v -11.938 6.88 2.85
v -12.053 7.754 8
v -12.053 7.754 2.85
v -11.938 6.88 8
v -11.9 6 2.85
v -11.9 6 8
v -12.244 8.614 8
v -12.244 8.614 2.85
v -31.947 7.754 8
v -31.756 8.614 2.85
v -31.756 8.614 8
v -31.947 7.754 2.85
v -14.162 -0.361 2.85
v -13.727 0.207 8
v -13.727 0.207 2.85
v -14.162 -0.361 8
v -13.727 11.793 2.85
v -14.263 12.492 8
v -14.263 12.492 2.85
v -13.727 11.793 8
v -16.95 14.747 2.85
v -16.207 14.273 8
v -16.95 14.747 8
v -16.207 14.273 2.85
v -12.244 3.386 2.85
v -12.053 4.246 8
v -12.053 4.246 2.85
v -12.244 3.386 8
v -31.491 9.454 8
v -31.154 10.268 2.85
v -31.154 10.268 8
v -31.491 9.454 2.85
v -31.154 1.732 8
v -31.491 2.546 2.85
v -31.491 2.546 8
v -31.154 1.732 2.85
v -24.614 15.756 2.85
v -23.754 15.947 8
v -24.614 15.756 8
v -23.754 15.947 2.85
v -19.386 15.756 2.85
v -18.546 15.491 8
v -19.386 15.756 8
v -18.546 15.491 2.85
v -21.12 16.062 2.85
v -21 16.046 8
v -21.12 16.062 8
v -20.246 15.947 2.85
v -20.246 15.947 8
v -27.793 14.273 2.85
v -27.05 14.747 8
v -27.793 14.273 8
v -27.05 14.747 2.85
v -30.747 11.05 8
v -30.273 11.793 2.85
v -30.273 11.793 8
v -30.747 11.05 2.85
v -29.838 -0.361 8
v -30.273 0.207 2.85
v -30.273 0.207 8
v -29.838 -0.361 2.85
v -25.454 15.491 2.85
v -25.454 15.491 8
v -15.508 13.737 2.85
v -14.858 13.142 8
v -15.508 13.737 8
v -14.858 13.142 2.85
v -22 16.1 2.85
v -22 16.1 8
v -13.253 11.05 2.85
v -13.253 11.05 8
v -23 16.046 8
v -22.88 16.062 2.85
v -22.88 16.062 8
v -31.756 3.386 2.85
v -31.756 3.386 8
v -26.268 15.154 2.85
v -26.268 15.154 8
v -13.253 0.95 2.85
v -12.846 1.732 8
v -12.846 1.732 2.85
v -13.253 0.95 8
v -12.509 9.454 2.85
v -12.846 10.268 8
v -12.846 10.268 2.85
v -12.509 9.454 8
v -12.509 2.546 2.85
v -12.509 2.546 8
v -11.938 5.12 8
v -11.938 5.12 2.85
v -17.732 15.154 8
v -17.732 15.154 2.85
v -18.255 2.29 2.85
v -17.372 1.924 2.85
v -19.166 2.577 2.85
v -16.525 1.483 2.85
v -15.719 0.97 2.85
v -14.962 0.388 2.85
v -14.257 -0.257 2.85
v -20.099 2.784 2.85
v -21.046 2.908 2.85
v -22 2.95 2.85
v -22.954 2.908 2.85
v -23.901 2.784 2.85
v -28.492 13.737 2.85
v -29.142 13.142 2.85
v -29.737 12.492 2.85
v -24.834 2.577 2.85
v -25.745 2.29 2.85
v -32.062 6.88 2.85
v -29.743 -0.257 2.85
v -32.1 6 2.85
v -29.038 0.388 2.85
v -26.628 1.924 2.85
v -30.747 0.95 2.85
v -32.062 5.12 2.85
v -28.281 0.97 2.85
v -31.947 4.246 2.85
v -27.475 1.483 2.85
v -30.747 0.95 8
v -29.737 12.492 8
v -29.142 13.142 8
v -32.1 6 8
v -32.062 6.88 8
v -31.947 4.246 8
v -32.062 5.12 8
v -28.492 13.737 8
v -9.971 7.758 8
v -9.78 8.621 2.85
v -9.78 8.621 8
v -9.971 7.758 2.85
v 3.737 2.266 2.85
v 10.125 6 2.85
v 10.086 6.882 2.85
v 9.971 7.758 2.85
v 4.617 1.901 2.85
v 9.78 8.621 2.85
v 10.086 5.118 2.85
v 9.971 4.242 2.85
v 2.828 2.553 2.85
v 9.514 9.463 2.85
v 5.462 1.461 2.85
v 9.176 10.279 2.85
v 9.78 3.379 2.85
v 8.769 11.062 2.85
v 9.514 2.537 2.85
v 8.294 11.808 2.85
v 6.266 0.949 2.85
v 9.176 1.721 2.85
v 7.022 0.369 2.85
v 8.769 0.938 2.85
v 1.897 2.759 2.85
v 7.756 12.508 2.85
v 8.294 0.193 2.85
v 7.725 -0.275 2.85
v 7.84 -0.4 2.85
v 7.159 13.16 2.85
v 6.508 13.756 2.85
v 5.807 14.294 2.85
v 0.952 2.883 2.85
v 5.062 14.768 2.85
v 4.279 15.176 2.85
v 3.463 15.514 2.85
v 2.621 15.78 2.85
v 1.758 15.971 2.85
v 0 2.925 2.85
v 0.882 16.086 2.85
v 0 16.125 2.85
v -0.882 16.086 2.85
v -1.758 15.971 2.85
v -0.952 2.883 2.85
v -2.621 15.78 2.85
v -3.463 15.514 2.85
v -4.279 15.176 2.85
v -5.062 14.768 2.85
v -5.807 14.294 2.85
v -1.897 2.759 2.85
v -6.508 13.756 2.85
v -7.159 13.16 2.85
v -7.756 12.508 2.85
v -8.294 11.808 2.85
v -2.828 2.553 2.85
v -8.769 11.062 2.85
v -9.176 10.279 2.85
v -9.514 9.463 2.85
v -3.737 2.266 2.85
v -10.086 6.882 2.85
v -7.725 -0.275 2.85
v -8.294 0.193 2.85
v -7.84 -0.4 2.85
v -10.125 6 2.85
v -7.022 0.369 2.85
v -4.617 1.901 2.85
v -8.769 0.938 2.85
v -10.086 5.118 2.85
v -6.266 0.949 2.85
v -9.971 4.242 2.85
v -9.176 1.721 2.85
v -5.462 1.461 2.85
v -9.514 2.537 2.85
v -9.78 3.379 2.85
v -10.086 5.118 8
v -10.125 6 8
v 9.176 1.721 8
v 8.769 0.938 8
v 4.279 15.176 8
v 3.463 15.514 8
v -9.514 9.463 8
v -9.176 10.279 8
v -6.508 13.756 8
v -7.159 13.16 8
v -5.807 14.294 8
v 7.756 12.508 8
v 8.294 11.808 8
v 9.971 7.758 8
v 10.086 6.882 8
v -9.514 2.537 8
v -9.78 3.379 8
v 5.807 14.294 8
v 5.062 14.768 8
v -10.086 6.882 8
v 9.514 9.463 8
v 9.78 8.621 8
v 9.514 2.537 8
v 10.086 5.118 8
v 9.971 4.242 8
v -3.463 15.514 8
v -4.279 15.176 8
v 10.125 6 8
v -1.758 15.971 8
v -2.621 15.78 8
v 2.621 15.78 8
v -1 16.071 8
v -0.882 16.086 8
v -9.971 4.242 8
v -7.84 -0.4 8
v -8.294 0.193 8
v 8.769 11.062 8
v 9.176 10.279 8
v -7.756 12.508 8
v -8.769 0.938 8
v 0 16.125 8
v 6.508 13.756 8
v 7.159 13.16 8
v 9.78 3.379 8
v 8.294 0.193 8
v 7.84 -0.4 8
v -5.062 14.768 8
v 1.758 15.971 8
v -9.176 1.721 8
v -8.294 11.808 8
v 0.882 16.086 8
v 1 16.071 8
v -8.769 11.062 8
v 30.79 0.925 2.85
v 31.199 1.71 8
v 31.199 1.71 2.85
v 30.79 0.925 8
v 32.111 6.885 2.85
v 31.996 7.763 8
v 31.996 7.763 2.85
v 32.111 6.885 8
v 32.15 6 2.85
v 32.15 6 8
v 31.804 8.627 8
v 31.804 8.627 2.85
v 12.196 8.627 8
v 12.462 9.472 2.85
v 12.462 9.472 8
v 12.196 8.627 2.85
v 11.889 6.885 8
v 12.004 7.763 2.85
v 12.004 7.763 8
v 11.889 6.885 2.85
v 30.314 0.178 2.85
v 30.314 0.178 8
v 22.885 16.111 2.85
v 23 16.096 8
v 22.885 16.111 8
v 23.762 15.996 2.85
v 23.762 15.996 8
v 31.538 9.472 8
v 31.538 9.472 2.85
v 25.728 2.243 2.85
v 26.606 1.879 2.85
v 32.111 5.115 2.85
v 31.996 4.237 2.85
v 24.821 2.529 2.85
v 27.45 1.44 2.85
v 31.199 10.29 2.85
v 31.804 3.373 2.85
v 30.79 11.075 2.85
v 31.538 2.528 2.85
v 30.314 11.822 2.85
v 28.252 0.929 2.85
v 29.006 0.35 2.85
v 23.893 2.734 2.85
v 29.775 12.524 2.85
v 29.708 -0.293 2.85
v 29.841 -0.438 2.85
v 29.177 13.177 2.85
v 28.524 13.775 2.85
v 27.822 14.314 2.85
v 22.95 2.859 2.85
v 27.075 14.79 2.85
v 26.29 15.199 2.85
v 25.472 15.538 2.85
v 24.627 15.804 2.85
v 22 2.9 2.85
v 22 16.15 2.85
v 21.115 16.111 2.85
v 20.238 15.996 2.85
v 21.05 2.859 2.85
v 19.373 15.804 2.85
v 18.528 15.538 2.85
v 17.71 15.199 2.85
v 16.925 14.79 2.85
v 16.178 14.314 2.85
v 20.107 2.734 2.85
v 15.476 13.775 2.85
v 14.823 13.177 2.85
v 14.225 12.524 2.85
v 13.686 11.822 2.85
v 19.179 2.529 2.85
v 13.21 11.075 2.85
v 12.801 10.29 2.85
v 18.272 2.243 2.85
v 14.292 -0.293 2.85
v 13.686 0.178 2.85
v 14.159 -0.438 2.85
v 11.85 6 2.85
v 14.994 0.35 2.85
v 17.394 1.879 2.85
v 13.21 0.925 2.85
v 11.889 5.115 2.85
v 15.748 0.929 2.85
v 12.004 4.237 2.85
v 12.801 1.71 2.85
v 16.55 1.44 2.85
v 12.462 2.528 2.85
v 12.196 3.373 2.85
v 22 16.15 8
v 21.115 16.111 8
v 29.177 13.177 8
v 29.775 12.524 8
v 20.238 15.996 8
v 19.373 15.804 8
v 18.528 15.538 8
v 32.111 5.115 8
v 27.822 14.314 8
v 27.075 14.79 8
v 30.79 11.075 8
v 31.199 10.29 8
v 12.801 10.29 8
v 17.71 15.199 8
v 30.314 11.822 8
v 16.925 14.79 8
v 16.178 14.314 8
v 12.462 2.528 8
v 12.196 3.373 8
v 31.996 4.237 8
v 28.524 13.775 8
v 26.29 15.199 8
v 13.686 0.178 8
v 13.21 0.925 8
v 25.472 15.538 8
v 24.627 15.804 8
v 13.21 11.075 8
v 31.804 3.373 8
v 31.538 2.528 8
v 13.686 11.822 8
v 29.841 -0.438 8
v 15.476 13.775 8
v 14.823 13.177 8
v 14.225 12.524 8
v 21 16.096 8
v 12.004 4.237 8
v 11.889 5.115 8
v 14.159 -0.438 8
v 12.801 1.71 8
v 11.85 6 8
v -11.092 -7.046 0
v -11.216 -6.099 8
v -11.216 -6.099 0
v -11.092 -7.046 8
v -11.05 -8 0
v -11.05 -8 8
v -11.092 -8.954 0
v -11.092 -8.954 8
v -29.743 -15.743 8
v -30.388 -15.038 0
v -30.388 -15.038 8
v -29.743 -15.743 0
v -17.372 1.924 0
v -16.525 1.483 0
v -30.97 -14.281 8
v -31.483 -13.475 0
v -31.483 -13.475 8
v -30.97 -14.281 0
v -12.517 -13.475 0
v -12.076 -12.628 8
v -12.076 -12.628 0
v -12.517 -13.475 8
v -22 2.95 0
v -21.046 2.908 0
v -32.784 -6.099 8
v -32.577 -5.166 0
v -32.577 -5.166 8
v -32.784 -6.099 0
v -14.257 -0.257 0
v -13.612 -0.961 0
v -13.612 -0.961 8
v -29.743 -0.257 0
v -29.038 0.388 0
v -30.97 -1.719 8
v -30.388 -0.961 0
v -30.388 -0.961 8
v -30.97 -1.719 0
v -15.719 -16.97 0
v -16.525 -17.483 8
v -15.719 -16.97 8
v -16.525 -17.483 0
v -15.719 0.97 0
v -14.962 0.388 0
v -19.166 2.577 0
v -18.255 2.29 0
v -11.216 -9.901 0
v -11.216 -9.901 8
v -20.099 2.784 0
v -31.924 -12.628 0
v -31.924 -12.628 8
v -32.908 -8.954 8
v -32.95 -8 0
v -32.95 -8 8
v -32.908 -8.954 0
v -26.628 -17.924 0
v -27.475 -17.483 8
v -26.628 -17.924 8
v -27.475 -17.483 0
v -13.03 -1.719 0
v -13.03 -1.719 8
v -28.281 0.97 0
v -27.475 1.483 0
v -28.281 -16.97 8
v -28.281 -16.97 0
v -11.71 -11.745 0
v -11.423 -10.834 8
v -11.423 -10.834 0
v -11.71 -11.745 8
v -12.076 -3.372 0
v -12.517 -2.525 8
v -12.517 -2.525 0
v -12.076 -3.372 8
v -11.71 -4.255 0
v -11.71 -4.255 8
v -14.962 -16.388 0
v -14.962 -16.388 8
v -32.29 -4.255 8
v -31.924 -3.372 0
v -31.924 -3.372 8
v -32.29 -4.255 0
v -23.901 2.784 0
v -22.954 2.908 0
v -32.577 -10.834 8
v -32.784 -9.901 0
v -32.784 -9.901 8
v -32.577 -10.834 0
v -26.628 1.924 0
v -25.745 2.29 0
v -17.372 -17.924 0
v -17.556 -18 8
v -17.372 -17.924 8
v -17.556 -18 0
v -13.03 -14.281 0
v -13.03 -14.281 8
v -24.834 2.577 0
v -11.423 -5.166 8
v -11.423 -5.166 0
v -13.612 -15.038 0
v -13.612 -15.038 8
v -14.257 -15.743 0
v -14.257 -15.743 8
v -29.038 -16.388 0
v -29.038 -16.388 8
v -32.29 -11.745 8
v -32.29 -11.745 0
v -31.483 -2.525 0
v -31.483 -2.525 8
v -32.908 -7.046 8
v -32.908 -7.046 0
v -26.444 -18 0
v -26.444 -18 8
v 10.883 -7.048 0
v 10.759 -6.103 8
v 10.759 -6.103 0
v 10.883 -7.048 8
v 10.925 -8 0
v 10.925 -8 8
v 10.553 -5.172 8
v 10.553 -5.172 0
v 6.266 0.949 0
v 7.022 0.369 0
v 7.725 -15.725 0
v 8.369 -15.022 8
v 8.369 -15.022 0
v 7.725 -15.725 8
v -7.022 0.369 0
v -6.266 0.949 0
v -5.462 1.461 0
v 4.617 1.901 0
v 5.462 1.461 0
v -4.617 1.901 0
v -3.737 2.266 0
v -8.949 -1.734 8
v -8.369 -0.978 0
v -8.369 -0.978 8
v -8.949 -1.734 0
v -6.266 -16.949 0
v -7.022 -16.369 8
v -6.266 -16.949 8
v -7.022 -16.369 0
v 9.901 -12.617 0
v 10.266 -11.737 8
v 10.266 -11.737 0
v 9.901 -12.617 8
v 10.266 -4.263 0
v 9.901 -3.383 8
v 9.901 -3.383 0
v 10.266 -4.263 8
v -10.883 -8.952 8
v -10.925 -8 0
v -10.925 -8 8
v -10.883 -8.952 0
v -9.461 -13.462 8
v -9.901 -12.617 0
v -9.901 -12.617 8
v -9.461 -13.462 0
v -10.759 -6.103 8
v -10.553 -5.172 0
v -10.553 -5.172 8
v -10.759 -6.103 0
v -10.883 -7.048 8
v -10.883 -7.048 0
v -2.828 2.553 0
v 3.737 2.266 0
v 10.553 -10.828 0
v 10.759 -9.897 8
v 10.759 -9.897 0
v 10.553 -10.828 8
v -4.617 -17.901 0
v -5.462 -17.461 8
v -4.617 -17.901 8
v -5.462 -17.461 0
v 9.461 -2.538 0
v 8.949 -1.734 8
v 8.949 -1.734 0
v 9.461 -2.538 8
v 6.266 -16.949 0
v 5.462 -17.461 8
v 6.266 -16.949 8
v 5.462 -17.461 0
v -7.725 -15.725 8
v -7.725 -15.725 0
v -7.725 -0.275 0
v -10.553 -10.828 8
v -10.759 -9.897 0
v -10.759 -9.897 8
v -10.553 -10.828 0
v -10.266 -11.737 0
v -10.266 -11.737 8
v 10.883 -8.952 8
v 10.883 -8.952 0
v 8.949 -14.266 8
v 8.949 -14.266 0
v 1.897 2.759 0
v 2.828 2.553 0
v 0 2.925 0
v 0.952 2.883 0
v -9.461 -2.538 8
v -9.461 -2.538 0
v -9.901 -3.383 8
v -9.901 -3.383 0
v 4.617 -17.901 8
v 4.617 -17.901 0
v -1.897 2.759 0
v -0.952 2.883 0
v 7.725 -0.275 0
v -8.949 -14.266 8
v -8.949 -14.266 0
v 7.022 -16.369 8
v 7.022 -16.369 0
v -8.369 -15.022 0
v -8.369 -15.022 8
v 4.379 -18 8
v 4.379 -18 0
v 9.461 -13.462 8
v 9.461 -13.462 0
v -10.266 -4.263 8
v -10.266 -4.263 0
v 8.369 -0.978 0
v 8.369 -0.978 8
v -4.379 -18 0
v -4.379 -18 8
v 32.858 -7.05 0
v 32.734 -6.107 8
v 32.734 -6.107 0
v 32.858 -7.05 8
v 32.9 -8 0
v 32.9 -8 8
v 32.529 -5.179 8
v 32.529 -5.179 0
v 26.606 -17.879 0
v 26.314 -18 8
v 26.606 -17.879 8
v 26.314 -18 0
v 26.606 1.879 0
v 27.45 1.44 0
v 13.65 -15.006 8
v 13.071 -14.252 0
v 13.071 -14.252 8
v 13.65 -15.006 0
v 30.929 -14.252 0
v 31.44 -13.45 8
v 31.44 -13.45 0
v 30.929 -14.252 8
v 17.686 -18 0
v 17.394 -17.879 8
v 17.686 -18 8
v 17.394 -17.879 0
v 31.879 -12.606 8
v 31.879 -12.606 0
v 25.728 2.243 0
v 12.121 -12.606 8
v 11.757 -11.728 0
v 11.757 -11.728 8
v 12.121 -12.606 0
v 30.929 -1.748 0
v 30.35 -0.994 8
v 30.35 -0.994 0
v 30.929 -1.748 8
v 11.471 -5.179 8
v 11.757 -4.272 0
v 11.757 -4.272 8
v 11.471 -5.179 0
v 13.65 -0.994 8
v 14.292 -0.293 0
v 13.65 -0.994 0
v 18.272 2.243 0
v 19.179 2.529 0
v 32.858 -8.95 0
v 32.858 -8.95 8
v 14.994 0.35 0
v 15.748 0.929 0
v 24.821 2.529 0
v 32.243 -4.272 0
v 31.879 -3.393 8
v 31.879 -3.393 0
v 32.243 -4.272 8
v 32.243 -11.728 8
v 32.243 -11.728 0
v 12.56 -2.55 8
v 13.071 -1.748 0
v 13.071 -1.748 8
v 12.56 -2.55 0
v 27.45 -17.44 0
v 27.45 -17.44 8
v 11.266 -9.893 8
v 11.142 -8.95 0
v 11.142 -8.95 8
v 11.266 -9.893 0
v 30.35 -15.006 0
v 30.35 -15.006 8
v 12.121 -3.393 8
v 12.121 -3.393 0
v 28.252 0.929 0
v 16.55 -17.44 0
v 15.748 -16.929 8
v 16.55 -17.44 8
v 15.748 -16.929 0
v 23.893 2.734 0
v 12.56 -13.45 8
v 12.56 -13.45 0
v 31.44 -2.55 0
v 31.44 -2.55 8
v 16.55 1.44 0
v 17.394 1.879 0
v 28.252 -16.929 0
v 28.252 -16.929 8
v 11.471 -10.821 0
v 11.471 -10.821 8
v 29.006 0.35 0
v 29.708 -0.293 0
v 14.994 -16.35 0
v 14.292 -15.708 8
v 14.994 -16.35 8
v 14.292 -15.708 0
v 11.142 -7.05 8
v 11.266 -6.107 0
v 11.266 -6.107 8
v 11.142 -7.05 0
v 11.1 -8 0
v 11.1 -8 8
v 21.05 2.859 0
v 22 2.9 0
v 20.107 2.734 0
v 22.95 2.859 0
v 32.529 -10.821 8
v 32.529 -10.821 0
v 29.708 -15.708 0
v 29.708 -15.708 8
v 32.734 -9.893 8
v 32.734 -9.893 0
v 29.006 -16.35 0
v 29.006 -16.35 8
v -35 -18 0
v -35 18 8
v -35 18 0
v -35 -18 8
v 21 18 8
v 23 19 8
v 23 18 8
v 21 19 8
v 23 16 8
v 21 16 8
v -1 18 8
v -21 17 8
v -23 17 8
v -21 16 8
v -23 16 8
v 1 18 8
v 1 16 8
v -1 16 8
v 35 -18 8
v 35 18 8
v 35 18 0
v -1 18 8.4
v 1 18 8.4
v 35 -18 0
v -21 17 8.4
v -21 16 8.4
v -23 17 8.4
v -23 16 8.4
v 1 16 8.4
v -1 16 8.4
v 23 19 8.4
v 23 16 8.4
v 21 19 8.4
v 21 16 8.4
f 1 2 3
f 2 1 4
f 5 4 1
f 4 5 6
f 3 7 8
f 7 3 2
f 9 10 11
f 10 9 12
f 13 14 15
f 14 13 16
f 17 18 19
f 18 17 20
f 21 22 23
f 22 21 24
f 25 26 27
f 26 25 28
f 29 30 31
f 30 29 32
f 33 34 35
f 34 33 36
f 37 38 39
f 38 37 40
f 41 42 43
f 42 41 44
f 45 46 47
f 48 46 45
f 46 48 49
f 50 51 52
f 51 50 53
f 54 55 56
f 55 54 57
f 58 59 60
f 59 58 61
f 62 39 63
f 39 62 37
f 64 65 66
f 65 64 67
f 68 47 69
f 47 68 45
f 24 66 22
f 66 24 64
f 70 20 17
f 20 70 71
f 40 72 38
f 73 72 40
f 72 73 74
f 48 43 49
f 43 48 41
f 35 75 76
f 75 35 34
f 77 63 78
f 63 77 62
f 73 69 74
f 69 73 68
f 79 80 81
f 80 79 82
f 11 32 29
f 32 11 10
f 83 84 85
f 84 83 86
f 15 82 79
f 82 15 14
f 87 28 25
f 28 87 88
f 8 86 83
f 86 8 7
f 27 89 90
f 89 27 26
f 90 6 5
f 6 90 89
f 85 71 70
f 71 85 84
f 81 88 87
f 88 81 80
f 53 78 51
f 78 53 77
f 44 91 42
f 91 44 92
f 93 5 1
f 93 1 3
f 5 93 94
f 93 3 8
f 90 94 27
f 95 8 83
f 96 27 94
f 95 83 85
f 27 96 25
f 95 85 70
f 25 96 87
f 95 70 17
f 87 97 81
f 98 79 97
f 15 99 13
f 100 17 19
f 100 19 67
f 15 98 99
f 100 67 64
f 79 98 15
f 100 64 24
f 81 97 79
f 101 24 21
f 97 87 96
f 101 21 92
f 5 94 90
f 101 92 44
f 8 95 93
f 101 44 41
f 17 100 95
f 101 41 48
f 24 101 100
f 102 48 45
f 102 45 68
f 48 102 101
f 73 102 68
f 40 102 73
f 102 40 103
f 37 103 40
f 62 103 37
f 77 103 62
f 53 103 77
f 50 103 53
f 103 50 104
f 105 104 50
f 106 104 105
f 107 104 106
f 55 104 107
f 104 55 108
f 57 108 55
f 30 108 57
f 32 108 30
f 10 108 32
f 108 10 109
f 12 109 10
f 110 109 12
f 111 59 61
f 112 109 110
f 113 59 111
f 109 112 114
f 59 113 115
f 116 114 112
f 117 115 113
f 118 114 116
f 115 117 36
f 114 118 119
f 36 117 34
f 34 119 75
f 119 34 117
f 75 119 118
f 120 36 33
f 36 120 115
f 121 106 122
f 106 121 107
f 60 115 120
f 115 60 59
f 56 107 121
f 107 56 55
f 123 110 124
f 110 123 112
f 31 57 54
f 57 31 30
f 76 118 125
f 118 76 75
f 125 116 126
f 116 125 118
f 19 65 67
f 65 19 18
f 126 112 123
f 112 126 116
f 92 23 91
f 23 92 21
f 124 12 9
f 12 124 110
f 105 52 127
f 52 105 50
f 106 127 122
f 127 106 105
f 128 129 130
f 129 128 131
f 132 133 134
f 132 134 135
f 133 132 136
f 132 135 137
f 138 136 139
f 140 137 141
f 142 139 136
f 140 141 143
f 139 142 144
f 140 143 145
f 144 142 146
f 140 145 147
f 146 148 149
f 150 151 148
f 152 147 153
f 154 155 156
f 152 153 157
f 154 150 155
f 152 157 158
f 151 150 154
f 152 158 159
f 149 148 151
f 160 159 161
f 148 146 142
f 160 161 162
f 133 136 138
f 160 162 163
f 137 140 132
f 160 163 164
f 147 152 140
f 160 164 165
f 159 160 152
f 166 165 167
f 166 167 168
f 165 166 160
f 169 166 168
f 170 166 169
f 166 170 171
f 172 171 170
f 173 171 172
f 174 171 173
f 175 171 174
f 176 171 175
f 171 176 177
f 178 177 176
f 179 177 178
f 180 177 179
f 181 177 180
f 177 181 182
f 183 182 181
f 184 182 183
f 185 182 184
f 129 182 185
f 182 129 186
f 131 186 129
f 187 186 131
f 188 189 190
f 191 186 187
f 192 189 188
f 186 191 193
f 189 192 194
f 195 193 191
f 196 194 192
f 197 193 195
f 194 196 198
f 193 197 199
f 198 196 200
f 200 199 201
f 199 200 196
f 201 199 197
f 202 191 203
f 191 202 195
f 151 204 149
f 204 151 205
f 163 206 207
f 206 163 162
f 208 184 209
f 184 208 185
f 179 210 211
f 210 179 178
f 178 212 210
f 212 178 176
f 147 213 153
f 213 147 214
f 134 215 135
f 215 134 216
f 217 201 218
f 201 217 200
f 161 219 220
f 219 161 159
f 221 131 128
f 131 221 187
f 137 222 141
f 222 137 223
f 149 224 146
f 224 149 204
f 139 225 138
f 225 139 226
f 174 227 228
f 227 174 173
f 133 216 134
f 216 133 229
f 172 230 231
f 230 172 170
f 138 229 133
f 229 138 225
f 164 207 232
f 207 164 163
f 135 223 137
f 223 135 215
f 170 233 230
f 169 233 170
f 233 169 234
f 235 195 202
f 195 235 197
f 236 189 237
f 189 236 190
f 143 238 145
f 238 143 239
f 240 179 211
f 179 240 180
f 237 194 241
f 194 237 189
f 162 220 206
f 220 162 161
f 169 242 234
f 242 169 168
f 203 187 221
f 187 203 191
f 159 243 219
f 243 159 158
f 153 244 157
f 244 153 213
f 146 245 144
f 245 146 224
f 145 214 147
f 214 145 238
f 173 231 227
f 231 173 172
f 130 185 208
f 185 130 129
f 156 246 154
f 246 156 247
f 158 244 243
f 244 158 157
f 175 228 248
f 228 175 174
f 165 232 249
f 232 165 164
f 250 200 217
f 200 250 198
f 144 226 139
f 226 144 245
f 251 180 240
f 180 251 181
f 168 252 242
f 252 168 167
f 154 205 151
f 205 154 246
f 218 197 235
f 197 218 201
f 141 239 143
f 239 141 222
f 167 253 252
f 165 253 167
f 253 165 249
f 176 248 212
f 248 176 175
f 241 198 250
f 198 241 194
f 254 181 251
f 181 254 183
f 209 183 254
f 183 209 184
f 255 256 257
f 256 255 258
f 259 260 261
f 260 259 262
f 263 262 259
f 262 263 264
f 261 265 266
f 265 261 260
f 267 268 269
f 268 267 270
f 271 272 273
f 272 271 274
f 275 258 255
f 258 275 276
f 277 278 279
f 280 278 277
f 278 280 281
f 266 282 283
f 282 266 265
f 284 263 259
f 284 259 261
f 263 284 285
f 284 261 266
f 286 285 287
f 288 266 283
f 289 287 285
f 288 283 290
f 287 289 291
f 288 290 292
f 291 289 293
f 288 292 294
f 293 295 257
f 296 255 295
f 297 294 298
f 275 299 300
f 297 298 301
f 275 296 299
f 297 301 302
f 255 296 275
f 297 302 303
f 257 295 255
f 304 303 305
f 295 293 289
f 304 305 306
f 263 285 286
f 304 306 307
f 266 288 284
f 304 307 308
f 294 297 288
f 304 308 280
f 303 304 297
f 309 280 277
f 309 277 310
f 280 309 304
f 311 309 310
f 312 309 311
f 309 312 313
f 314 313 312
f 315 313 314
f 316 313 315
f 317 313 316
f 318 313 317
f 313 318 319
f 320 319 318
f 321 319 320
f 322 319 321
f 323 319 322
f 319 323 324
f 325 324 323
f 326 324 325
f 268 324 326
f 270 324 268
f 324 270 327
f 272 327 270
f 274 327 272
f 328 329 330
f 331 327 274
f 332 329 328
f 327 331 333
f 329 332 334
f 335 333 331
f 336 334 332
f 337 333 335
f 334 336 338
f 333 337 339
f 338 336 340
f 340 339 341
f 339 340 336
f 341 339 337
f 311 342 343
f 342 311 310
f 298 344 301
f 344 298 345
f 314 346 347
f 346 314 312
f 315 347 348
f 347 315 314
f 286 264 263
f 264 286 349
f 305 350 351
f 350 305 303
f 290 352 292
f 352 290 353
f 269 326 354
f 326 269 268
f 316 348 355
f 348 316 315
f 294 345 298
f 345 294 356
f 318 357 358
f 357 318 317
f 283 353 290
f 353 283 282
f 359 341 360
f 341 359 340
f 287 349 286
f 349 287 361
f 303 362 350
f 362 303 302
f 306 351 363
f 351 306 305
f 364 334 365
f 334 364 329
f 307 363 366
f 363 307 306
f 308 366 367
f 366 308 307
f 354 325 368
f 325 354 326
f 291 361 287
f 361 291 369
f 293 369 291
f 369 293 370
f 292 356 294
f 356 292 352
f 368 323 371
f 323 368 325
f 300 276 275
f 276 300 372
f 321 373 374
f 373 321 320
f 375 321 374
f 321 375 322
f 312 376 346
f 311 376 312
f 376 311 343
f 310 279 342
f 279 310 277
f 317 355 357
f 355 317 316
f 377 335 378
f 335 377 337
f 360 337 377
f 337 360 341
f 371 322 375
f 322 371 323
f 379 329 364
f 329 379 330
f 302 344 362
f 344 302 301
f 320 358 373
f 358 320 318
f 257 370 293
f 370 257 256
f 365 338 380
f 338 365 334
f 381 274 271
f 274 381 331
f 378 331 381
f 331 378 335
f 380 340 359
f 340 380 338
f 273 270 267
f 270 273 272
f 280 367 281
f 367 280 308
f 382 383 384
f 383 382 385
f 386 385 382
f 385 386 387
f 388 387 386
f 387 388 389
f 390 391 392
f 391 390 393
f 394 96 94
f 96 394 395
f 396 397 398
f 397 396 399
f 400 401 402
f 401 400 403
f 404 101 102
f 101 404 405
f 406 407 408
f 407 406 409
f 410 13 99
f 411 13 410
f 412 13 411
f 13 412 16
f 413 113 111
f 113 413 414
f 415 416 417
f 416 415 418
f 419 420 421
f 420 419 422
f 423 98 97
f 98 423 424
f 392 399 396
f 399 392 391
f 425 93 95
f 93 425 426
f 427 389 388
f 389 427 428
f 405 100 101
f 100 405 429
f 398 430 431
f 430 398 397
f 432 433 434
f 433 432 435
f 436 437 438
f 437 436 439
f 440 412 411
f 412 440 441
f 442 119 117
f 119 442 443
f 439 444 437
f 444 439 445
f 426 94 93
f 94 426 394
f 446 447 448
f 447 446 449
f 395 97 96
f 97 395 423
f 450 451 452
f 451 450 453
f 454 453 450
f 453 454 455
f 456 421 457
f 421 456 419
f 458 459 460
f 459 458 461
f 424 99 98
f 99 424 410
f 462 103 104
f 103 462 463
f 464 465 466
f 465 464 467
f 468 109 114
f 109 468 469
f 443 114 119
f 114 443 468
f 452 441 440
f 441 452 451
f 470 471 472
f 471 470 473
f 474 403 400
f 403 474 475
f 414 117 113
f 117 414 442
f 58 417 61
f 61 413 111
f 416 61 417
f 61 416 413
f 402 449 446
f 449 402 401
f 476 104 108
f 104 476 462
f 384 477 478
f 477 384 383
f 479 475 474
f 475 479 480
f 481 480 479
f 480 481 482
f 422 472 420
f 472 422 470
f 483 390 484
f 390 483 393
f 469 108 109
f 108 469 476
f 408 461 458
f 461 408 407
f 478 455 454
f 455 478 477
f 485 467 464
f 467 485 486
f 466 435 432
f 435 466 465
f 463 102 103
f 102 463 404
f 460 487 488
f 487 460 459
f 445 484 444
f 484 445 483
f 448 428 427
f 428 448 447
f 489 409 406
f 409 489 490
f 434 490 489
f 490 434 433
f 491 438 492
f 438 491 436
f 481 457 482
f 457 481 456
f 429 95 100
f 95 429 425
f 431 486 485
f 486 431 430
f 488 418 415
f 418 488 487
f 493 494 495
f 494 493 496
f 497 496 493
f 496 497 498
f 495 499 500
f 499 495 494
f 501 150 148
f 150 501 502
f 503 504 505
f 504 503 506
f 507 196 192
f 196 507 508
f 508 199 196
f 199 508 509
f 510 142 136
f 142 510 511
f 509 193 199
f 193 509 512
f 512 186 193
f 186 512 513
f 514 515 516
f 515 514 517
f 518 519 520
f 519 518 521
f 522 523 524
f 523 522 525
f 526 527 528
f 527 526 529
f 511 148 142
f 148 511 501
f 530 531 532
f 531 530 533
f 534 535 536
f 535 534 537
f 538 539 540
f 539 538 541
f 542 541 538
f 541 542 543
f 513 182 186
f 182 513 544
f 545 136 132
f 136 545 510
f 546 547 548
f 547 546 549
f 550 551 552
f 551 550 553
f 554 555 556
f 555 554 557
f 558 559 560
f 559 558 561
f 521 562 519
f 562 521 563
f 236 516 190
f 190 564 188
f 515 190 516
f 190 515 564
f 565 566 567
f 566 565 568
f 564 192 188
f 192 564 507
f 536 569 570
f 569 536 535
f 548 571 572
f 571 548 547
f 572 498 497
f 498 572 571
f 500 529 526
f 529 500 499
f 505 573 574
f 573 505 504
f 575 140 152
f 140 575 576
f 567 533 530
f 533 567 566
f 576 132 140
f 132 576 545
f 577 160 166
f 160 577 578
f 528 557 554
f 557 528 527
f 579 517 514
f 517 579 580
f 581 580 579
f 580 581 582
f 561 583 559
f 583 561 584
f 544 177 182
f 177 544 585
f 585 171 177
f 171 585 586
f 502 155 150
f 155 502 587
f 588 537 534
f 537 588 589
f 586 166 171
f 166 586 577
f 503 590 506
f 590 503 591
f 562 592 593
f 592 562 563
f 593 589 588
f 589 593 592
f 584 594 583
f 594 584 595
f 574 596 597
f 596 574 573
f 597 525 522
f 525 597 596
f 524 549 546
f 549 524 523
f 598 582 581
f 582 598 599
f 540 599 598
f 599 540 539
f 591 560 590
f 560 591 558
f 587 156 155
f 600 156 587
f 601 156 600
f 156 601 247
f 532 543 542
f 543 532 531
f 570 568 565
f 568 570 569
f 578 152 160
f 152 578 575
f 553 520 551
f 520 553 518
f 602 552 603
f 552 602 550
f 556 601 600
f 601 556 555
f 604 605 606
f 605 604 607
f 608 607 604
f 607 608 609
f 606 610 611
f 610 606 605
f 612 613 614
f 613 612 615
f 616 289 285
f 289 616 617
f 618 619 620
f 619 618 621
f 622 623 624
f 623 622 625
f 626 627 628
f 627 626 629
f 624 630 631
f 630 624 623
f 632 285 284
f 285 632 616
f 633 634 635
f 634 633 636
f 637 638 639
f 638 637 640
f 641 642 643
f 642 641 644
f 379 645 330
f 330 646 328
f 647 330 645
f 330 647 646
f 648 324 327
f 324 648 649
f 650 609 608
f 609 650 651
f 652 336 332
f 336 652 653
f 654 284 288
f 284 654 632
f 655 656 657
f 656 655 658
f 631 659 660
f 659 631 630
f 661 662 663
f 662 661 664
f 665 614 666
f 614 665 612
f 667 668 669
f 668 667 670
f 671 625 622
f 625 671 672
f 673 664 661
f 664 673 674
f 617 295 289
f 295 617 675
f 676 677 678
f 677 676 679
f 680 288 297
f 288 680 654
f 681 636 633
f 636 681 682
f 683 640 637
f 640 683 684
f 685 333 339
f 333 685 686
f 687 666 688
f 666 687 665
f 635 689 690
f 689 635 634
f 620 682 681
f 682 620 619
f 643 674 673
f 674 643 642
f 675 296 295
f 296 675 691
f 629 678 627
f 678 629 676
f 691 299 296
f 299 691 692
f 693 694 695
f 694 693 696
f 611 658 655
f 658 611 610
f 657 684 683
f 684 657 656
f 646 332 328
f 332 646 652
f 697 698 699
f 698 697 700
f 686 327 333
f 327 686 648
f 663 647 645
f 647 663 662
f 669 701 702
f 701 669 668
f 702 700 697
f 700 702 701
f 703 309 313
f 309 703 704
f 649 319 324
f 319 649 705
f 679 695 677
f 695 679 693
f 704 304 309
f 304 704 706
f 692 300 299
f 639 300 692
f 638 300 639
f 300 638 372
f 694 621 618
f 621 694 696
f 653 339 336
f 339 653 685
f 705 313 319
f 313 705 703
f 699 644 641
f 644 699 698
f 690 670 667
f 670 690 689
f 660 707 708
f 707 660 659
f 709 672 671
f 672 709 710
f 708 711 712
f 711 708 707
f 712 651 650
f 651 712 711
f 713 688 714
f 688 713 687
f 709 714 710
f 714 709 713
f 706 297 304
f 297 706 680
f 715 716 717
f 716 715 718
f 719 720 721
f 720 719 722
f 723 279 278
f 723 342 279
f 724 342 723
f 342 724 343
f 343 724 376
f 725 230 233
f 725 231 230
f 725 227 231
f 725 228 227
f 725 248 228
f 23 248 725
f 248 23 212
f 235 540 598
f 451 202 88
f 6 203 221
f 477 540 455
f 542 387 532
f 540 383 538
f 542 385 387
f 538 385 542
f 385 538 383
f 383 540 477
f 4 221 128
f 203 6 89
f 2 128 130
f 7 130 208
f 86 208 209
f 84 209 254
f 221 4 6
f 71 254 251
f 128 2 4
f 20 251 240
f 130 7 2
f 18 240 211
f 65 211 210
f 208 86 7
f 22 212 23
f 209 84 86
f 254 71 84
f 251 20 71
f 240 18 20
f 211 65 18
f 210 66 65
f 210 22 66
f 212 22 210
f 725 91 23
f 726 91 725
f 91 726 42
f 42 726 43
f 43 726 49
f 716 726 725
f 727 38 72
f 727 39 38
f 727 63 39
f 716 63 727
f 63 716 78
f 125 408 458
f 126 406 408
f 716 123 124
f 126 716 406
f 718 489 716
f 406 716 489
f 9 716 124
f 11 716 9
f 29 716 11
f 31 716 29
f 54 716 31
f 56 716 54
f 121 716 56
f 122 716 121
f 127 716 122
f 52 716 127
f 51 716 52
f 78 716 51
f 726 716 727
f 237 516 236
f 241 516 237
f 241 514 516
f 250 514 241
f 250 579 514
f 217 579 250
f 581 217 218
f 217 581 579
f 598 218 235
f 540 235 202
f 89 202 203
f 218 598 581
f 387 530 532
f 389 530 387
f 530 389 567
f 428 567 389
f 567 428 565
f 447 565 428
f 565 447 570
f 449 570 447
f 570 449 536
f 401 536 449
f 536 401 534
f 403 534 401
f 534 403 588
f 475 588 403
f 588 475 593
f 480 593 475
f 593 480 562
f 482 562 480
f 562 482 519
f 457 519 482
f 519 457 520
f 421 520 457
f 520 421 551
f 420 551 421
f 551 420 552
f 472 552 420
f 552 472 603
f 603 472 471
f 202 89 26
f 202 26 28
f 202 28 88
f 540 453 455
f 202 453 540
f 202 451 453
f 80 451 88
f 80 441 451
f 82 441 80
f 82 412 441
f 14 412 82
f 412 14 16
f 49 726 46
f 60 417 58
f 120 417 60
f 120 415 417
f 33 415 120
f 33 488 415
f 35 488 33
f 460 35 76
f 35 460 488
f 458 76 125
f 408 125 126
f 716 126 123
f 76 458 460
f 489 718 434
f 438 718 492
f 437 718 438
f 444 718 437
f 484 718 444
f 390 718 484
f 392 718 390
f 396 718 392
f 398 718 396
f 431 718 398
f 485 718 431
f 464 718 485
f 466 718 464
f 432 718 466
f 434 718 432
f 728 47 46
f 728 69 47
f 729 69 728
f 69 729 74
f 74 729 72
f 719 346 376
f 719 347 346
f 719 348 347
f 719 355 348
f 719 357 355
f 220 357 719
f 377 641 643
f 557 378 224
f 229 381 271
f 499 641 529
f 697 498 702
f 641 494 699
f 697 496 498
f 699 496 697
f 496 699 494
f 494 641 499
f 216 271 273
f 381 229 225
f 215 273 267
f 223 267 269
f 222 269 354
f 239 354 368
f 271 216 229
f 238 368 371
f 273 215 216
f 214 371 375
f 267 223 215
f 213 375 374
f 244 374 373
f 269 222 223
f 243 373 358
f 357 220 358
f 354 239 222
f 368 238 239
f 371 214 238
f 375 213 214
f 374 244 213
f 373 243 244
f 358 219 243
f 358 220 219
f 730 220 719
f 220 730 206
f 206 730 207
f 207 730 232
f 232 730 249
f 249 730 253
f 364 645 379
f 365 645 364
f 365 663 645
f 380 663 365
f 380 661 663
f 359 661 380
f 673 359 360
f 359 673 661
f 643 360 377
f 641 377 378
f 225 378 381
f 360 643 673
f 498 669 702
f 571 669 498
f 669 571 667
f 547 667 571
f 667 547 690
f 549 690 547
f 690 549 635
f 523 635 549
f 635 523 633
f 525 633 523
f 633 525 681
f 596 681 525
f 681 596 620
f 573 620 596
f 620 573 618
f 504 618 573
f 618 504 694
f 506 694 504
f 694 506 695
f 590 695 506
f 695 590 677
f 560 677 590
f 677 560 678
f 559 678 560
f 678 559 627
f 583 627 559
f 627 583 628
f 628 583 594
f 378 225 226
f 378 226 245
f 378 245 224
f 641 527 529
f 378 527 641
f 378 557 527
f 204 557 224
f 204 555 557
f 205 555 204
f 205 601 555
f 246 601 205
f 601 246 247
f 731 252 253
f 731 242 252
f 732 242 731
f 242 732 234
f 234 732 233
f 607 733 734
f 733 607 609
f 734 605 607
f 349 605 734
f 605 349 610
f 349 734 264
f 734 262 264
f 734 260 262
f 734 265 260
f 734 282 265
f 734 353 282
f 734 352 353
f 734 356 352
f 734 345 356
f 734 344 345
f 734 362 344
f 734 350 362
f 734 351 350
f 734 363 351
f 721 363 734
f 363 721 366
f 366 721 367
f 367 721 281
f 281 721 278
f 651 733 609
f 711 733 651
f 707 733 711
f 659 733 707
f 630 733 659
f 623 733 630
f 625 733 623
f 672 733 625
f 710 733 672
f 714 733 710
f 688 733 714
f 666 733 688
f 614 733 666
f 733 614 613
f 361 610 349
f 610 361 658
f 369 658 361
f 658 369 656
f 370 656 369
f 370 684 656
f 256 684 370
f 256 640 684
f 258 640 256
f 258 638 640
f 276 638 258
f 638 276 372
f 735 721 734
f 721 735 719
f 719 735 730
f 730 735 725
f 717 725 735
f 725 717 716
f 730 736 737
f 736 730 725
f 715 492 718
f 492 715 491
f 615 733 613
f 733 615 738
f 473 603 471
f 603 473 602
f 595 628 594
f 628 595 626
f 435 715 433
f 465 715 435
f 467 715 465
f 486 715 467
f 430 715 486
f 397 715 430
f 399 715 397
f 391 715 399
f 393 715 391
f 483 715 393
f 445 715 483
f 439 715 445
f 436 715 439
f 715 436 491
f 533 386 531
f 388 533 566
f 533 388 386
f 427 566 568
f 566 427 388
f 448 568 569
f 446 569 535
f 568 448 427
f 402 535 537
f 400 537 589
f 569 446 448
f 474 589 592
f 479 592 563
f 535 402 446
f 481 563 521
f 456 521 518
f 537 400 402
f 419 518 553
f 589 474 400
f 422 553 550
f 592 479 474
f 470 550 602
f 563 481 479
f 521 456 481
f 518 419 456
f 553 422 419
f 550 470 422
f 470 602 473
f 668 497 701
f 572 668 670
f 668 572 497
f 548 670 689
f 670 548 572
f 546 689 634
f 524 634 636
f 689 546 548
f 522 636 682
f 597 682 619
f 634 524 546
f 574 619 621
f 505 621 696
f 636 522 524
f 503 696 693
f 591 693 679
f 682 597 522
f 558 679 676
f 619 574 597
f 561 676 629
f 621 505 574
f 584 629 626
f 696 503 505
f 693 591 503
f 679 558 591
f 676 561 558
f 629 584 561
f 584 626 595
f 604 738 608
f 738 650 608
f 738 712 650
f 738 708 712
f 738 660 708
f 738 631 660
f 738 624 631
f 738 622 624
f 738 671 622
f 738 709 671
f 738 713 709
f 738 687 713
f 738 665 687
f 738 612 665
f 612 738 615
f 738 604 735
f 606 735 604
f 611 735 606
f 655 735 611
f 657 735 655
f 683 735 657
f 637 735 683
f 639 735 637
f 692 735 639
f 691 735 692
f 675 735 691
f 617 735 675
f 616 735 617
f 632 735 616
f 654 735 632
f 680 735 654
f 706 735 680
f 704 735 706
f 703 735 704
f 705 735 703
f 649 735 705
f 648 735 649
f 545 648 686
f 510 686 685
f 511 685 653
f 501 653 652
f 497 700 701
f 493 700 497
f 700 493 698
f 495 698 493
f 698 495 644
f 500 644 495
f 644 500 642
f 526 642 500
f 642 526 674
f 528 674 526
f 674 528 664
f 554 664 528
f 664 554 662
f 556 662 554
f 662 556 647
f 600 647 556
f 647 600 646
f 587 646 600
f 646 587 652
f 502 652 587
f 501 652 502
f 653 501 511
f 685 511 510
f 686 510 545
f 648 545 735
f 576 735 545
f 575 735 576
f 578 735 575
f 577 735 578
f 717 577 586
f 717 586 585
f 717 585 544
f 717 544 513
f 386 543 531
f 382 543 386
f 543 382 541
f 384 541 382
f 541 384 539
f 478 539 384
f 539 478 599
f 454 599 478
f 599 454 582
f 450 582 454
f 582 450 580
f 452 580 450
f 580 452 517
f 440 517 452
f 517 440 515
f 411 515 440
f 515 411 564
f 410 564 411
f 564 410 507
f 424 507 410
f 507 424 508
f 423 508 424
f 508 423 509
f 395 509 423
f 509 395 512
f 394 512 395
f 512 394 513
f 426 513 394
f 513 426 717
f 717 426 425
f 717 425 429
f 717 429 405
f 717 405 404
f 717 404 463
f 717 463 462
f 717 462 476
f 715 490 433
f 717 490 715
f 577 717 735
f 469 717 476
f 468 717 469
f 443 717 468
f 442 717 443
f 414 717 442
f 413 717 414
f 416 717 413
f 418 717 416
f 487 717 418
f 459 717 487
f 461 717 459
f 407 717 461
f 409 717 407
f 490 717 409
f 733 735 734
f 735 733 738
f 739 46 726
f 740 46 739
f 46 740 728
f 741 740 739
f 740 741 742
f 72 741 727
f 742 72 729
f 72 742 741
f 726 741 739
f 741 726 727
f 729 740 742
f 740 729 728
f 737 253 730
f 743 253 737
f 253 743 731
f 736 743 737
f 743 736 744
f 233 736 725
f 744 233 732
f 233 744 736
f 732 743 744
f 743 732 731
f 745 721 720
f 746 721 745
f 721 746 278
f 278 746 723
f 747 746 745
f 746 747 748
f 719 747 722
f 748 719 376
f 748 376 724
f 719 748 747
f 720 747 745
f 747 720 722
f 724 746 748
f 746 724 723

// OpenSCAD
// file: parameters.scad
// Coax Faraday Generator Experiments v3 — shared parameters (mm)
// Three-layer coaxial: outer magnets + coil stator + inner magnets
// Orthodox Faraday only — mechanical → electrical. No overunity.
// Target: Anycubic Kobra 3 Max, 0.4 mm nozzle, 0.2 mm layers, PETG preferred.

$fn = 72;

// --- Printer / FDM ---
nozzle = 0.4;
layer = 0.2;
wall = 2.0;                 // ≥2 mm walls on drums
housing_wall = 2.4;
clearance_slip = 0.35;
press_interference = 0.15;  // 608 seat undersize total (~0.1–0.2)
magnet_pocket_xy = 0.25;    // +0.25 mm on diameter (within +0.2–0.3)
magnet_pocket_z = 0.15;     // +0.15 mm depth (within +0.1–0.2)

// --- Magnets (ASSUMPTION: Ø20×5 mm N42 axial discs, not bar stock) ---
magnet_d = 20;
magnet_h = 5;
pole_count = 8;             // alternating N/S around circumference

// --- Radial stack (from axis) ---
// Inner magnet FACE at r=33; magnets 5 mm thick → pocket floor at 33-5=28
r_inner_face = 33;
air_gap = 2.0;              // each side (1–3 mm sweep; nominal 2)
coil_radial = 9.0;          // winding depth
r_coil_inner = r_inner_face + air_gap;          // 35
r_coil_outer = r_coil_inner + coil_radial;      // 44
r_outer_face = r_coil_outer + air_gap;          // 46
// Outer magnet pocket floor (further out): face + thickness
r_outer_floor = r_outer_face + magnet_h;        // 51

inner_drum_od = 2 * (r_inner_face);             // face OD before pockets nuance
inner_drum_core_r = r_inner_face - magnet_h;    // 28
outer_drum_id = 2 * r_outer_face;               // clear to faces
outer_drum_od = 2 * (r_outer_floor + wall);     // ~106

axial_magnet = 22;          // pocket axial span (~magnet_d + margin)
coil_axial = 24;
drum_axial = 28;            // outer/inner drum barrel length

// --- Shaft / bearings 608-2RS ---
shaft_d = 8;
bearing_od = 22;
bearing_id = 8;
bearing_h = 7;
bearing_seat_od = bearing_od - press_interference; // ~21.85

// --- Base ---
base_w = 160;
base_d = 140;
base_h = 8;
post_h = 70;
post_spacing = 100;         // bearing center distance along shaft axis (Y)
post_d = 36;

// --- Crank ---
crank_arm_len = 80;
crank_arm_w = 16;
crank_arm_t = 10;
handle_d = 14;
handle_len = 40;

// --- Fasteners ---
m3_clear = 3.4;
m3_tap = 2.5;
m4_clear = 4.3;
// main file
include <parameters.scad>

// Fit coupon: magnet pockets + 608 seat variants for Kobra PETG calibration
module fit_coupon() {
    difference() {
        hull() {
            translate([-35, -18, 0]) cube([70, 36, 8]);
        }
        // Magnet pocket diameter variants: +0.2, +0.25, +0.3
        for (i = [0:2]) {
            d = magnet_d + 0.2 + i * 0.05;
            translate([-22 + i * 22, 6, 8 - (magnet_h + magnet_pocket_z)])
                cylinder(h = magnet_h + magnet_pocket_z + 0.2, d = d);
        }
        // 608 seats: undersize 0.10, 0.15, 0.20 total
        for (i = [0:2]) {
            d = bearing_od - (0.10 + i * 0.05);
            translate([-22 + i * 22, -8, -0.1])
                cylinder(h = 8.2, d = d);
        }
    }
    // Labels as raised bars (count notches)
    for (i = [0:2]) translate([-22 + i * 22 - 1, 16, 8]) cube([2, 1 + i, 0.4]);
}
fit_coupon();
